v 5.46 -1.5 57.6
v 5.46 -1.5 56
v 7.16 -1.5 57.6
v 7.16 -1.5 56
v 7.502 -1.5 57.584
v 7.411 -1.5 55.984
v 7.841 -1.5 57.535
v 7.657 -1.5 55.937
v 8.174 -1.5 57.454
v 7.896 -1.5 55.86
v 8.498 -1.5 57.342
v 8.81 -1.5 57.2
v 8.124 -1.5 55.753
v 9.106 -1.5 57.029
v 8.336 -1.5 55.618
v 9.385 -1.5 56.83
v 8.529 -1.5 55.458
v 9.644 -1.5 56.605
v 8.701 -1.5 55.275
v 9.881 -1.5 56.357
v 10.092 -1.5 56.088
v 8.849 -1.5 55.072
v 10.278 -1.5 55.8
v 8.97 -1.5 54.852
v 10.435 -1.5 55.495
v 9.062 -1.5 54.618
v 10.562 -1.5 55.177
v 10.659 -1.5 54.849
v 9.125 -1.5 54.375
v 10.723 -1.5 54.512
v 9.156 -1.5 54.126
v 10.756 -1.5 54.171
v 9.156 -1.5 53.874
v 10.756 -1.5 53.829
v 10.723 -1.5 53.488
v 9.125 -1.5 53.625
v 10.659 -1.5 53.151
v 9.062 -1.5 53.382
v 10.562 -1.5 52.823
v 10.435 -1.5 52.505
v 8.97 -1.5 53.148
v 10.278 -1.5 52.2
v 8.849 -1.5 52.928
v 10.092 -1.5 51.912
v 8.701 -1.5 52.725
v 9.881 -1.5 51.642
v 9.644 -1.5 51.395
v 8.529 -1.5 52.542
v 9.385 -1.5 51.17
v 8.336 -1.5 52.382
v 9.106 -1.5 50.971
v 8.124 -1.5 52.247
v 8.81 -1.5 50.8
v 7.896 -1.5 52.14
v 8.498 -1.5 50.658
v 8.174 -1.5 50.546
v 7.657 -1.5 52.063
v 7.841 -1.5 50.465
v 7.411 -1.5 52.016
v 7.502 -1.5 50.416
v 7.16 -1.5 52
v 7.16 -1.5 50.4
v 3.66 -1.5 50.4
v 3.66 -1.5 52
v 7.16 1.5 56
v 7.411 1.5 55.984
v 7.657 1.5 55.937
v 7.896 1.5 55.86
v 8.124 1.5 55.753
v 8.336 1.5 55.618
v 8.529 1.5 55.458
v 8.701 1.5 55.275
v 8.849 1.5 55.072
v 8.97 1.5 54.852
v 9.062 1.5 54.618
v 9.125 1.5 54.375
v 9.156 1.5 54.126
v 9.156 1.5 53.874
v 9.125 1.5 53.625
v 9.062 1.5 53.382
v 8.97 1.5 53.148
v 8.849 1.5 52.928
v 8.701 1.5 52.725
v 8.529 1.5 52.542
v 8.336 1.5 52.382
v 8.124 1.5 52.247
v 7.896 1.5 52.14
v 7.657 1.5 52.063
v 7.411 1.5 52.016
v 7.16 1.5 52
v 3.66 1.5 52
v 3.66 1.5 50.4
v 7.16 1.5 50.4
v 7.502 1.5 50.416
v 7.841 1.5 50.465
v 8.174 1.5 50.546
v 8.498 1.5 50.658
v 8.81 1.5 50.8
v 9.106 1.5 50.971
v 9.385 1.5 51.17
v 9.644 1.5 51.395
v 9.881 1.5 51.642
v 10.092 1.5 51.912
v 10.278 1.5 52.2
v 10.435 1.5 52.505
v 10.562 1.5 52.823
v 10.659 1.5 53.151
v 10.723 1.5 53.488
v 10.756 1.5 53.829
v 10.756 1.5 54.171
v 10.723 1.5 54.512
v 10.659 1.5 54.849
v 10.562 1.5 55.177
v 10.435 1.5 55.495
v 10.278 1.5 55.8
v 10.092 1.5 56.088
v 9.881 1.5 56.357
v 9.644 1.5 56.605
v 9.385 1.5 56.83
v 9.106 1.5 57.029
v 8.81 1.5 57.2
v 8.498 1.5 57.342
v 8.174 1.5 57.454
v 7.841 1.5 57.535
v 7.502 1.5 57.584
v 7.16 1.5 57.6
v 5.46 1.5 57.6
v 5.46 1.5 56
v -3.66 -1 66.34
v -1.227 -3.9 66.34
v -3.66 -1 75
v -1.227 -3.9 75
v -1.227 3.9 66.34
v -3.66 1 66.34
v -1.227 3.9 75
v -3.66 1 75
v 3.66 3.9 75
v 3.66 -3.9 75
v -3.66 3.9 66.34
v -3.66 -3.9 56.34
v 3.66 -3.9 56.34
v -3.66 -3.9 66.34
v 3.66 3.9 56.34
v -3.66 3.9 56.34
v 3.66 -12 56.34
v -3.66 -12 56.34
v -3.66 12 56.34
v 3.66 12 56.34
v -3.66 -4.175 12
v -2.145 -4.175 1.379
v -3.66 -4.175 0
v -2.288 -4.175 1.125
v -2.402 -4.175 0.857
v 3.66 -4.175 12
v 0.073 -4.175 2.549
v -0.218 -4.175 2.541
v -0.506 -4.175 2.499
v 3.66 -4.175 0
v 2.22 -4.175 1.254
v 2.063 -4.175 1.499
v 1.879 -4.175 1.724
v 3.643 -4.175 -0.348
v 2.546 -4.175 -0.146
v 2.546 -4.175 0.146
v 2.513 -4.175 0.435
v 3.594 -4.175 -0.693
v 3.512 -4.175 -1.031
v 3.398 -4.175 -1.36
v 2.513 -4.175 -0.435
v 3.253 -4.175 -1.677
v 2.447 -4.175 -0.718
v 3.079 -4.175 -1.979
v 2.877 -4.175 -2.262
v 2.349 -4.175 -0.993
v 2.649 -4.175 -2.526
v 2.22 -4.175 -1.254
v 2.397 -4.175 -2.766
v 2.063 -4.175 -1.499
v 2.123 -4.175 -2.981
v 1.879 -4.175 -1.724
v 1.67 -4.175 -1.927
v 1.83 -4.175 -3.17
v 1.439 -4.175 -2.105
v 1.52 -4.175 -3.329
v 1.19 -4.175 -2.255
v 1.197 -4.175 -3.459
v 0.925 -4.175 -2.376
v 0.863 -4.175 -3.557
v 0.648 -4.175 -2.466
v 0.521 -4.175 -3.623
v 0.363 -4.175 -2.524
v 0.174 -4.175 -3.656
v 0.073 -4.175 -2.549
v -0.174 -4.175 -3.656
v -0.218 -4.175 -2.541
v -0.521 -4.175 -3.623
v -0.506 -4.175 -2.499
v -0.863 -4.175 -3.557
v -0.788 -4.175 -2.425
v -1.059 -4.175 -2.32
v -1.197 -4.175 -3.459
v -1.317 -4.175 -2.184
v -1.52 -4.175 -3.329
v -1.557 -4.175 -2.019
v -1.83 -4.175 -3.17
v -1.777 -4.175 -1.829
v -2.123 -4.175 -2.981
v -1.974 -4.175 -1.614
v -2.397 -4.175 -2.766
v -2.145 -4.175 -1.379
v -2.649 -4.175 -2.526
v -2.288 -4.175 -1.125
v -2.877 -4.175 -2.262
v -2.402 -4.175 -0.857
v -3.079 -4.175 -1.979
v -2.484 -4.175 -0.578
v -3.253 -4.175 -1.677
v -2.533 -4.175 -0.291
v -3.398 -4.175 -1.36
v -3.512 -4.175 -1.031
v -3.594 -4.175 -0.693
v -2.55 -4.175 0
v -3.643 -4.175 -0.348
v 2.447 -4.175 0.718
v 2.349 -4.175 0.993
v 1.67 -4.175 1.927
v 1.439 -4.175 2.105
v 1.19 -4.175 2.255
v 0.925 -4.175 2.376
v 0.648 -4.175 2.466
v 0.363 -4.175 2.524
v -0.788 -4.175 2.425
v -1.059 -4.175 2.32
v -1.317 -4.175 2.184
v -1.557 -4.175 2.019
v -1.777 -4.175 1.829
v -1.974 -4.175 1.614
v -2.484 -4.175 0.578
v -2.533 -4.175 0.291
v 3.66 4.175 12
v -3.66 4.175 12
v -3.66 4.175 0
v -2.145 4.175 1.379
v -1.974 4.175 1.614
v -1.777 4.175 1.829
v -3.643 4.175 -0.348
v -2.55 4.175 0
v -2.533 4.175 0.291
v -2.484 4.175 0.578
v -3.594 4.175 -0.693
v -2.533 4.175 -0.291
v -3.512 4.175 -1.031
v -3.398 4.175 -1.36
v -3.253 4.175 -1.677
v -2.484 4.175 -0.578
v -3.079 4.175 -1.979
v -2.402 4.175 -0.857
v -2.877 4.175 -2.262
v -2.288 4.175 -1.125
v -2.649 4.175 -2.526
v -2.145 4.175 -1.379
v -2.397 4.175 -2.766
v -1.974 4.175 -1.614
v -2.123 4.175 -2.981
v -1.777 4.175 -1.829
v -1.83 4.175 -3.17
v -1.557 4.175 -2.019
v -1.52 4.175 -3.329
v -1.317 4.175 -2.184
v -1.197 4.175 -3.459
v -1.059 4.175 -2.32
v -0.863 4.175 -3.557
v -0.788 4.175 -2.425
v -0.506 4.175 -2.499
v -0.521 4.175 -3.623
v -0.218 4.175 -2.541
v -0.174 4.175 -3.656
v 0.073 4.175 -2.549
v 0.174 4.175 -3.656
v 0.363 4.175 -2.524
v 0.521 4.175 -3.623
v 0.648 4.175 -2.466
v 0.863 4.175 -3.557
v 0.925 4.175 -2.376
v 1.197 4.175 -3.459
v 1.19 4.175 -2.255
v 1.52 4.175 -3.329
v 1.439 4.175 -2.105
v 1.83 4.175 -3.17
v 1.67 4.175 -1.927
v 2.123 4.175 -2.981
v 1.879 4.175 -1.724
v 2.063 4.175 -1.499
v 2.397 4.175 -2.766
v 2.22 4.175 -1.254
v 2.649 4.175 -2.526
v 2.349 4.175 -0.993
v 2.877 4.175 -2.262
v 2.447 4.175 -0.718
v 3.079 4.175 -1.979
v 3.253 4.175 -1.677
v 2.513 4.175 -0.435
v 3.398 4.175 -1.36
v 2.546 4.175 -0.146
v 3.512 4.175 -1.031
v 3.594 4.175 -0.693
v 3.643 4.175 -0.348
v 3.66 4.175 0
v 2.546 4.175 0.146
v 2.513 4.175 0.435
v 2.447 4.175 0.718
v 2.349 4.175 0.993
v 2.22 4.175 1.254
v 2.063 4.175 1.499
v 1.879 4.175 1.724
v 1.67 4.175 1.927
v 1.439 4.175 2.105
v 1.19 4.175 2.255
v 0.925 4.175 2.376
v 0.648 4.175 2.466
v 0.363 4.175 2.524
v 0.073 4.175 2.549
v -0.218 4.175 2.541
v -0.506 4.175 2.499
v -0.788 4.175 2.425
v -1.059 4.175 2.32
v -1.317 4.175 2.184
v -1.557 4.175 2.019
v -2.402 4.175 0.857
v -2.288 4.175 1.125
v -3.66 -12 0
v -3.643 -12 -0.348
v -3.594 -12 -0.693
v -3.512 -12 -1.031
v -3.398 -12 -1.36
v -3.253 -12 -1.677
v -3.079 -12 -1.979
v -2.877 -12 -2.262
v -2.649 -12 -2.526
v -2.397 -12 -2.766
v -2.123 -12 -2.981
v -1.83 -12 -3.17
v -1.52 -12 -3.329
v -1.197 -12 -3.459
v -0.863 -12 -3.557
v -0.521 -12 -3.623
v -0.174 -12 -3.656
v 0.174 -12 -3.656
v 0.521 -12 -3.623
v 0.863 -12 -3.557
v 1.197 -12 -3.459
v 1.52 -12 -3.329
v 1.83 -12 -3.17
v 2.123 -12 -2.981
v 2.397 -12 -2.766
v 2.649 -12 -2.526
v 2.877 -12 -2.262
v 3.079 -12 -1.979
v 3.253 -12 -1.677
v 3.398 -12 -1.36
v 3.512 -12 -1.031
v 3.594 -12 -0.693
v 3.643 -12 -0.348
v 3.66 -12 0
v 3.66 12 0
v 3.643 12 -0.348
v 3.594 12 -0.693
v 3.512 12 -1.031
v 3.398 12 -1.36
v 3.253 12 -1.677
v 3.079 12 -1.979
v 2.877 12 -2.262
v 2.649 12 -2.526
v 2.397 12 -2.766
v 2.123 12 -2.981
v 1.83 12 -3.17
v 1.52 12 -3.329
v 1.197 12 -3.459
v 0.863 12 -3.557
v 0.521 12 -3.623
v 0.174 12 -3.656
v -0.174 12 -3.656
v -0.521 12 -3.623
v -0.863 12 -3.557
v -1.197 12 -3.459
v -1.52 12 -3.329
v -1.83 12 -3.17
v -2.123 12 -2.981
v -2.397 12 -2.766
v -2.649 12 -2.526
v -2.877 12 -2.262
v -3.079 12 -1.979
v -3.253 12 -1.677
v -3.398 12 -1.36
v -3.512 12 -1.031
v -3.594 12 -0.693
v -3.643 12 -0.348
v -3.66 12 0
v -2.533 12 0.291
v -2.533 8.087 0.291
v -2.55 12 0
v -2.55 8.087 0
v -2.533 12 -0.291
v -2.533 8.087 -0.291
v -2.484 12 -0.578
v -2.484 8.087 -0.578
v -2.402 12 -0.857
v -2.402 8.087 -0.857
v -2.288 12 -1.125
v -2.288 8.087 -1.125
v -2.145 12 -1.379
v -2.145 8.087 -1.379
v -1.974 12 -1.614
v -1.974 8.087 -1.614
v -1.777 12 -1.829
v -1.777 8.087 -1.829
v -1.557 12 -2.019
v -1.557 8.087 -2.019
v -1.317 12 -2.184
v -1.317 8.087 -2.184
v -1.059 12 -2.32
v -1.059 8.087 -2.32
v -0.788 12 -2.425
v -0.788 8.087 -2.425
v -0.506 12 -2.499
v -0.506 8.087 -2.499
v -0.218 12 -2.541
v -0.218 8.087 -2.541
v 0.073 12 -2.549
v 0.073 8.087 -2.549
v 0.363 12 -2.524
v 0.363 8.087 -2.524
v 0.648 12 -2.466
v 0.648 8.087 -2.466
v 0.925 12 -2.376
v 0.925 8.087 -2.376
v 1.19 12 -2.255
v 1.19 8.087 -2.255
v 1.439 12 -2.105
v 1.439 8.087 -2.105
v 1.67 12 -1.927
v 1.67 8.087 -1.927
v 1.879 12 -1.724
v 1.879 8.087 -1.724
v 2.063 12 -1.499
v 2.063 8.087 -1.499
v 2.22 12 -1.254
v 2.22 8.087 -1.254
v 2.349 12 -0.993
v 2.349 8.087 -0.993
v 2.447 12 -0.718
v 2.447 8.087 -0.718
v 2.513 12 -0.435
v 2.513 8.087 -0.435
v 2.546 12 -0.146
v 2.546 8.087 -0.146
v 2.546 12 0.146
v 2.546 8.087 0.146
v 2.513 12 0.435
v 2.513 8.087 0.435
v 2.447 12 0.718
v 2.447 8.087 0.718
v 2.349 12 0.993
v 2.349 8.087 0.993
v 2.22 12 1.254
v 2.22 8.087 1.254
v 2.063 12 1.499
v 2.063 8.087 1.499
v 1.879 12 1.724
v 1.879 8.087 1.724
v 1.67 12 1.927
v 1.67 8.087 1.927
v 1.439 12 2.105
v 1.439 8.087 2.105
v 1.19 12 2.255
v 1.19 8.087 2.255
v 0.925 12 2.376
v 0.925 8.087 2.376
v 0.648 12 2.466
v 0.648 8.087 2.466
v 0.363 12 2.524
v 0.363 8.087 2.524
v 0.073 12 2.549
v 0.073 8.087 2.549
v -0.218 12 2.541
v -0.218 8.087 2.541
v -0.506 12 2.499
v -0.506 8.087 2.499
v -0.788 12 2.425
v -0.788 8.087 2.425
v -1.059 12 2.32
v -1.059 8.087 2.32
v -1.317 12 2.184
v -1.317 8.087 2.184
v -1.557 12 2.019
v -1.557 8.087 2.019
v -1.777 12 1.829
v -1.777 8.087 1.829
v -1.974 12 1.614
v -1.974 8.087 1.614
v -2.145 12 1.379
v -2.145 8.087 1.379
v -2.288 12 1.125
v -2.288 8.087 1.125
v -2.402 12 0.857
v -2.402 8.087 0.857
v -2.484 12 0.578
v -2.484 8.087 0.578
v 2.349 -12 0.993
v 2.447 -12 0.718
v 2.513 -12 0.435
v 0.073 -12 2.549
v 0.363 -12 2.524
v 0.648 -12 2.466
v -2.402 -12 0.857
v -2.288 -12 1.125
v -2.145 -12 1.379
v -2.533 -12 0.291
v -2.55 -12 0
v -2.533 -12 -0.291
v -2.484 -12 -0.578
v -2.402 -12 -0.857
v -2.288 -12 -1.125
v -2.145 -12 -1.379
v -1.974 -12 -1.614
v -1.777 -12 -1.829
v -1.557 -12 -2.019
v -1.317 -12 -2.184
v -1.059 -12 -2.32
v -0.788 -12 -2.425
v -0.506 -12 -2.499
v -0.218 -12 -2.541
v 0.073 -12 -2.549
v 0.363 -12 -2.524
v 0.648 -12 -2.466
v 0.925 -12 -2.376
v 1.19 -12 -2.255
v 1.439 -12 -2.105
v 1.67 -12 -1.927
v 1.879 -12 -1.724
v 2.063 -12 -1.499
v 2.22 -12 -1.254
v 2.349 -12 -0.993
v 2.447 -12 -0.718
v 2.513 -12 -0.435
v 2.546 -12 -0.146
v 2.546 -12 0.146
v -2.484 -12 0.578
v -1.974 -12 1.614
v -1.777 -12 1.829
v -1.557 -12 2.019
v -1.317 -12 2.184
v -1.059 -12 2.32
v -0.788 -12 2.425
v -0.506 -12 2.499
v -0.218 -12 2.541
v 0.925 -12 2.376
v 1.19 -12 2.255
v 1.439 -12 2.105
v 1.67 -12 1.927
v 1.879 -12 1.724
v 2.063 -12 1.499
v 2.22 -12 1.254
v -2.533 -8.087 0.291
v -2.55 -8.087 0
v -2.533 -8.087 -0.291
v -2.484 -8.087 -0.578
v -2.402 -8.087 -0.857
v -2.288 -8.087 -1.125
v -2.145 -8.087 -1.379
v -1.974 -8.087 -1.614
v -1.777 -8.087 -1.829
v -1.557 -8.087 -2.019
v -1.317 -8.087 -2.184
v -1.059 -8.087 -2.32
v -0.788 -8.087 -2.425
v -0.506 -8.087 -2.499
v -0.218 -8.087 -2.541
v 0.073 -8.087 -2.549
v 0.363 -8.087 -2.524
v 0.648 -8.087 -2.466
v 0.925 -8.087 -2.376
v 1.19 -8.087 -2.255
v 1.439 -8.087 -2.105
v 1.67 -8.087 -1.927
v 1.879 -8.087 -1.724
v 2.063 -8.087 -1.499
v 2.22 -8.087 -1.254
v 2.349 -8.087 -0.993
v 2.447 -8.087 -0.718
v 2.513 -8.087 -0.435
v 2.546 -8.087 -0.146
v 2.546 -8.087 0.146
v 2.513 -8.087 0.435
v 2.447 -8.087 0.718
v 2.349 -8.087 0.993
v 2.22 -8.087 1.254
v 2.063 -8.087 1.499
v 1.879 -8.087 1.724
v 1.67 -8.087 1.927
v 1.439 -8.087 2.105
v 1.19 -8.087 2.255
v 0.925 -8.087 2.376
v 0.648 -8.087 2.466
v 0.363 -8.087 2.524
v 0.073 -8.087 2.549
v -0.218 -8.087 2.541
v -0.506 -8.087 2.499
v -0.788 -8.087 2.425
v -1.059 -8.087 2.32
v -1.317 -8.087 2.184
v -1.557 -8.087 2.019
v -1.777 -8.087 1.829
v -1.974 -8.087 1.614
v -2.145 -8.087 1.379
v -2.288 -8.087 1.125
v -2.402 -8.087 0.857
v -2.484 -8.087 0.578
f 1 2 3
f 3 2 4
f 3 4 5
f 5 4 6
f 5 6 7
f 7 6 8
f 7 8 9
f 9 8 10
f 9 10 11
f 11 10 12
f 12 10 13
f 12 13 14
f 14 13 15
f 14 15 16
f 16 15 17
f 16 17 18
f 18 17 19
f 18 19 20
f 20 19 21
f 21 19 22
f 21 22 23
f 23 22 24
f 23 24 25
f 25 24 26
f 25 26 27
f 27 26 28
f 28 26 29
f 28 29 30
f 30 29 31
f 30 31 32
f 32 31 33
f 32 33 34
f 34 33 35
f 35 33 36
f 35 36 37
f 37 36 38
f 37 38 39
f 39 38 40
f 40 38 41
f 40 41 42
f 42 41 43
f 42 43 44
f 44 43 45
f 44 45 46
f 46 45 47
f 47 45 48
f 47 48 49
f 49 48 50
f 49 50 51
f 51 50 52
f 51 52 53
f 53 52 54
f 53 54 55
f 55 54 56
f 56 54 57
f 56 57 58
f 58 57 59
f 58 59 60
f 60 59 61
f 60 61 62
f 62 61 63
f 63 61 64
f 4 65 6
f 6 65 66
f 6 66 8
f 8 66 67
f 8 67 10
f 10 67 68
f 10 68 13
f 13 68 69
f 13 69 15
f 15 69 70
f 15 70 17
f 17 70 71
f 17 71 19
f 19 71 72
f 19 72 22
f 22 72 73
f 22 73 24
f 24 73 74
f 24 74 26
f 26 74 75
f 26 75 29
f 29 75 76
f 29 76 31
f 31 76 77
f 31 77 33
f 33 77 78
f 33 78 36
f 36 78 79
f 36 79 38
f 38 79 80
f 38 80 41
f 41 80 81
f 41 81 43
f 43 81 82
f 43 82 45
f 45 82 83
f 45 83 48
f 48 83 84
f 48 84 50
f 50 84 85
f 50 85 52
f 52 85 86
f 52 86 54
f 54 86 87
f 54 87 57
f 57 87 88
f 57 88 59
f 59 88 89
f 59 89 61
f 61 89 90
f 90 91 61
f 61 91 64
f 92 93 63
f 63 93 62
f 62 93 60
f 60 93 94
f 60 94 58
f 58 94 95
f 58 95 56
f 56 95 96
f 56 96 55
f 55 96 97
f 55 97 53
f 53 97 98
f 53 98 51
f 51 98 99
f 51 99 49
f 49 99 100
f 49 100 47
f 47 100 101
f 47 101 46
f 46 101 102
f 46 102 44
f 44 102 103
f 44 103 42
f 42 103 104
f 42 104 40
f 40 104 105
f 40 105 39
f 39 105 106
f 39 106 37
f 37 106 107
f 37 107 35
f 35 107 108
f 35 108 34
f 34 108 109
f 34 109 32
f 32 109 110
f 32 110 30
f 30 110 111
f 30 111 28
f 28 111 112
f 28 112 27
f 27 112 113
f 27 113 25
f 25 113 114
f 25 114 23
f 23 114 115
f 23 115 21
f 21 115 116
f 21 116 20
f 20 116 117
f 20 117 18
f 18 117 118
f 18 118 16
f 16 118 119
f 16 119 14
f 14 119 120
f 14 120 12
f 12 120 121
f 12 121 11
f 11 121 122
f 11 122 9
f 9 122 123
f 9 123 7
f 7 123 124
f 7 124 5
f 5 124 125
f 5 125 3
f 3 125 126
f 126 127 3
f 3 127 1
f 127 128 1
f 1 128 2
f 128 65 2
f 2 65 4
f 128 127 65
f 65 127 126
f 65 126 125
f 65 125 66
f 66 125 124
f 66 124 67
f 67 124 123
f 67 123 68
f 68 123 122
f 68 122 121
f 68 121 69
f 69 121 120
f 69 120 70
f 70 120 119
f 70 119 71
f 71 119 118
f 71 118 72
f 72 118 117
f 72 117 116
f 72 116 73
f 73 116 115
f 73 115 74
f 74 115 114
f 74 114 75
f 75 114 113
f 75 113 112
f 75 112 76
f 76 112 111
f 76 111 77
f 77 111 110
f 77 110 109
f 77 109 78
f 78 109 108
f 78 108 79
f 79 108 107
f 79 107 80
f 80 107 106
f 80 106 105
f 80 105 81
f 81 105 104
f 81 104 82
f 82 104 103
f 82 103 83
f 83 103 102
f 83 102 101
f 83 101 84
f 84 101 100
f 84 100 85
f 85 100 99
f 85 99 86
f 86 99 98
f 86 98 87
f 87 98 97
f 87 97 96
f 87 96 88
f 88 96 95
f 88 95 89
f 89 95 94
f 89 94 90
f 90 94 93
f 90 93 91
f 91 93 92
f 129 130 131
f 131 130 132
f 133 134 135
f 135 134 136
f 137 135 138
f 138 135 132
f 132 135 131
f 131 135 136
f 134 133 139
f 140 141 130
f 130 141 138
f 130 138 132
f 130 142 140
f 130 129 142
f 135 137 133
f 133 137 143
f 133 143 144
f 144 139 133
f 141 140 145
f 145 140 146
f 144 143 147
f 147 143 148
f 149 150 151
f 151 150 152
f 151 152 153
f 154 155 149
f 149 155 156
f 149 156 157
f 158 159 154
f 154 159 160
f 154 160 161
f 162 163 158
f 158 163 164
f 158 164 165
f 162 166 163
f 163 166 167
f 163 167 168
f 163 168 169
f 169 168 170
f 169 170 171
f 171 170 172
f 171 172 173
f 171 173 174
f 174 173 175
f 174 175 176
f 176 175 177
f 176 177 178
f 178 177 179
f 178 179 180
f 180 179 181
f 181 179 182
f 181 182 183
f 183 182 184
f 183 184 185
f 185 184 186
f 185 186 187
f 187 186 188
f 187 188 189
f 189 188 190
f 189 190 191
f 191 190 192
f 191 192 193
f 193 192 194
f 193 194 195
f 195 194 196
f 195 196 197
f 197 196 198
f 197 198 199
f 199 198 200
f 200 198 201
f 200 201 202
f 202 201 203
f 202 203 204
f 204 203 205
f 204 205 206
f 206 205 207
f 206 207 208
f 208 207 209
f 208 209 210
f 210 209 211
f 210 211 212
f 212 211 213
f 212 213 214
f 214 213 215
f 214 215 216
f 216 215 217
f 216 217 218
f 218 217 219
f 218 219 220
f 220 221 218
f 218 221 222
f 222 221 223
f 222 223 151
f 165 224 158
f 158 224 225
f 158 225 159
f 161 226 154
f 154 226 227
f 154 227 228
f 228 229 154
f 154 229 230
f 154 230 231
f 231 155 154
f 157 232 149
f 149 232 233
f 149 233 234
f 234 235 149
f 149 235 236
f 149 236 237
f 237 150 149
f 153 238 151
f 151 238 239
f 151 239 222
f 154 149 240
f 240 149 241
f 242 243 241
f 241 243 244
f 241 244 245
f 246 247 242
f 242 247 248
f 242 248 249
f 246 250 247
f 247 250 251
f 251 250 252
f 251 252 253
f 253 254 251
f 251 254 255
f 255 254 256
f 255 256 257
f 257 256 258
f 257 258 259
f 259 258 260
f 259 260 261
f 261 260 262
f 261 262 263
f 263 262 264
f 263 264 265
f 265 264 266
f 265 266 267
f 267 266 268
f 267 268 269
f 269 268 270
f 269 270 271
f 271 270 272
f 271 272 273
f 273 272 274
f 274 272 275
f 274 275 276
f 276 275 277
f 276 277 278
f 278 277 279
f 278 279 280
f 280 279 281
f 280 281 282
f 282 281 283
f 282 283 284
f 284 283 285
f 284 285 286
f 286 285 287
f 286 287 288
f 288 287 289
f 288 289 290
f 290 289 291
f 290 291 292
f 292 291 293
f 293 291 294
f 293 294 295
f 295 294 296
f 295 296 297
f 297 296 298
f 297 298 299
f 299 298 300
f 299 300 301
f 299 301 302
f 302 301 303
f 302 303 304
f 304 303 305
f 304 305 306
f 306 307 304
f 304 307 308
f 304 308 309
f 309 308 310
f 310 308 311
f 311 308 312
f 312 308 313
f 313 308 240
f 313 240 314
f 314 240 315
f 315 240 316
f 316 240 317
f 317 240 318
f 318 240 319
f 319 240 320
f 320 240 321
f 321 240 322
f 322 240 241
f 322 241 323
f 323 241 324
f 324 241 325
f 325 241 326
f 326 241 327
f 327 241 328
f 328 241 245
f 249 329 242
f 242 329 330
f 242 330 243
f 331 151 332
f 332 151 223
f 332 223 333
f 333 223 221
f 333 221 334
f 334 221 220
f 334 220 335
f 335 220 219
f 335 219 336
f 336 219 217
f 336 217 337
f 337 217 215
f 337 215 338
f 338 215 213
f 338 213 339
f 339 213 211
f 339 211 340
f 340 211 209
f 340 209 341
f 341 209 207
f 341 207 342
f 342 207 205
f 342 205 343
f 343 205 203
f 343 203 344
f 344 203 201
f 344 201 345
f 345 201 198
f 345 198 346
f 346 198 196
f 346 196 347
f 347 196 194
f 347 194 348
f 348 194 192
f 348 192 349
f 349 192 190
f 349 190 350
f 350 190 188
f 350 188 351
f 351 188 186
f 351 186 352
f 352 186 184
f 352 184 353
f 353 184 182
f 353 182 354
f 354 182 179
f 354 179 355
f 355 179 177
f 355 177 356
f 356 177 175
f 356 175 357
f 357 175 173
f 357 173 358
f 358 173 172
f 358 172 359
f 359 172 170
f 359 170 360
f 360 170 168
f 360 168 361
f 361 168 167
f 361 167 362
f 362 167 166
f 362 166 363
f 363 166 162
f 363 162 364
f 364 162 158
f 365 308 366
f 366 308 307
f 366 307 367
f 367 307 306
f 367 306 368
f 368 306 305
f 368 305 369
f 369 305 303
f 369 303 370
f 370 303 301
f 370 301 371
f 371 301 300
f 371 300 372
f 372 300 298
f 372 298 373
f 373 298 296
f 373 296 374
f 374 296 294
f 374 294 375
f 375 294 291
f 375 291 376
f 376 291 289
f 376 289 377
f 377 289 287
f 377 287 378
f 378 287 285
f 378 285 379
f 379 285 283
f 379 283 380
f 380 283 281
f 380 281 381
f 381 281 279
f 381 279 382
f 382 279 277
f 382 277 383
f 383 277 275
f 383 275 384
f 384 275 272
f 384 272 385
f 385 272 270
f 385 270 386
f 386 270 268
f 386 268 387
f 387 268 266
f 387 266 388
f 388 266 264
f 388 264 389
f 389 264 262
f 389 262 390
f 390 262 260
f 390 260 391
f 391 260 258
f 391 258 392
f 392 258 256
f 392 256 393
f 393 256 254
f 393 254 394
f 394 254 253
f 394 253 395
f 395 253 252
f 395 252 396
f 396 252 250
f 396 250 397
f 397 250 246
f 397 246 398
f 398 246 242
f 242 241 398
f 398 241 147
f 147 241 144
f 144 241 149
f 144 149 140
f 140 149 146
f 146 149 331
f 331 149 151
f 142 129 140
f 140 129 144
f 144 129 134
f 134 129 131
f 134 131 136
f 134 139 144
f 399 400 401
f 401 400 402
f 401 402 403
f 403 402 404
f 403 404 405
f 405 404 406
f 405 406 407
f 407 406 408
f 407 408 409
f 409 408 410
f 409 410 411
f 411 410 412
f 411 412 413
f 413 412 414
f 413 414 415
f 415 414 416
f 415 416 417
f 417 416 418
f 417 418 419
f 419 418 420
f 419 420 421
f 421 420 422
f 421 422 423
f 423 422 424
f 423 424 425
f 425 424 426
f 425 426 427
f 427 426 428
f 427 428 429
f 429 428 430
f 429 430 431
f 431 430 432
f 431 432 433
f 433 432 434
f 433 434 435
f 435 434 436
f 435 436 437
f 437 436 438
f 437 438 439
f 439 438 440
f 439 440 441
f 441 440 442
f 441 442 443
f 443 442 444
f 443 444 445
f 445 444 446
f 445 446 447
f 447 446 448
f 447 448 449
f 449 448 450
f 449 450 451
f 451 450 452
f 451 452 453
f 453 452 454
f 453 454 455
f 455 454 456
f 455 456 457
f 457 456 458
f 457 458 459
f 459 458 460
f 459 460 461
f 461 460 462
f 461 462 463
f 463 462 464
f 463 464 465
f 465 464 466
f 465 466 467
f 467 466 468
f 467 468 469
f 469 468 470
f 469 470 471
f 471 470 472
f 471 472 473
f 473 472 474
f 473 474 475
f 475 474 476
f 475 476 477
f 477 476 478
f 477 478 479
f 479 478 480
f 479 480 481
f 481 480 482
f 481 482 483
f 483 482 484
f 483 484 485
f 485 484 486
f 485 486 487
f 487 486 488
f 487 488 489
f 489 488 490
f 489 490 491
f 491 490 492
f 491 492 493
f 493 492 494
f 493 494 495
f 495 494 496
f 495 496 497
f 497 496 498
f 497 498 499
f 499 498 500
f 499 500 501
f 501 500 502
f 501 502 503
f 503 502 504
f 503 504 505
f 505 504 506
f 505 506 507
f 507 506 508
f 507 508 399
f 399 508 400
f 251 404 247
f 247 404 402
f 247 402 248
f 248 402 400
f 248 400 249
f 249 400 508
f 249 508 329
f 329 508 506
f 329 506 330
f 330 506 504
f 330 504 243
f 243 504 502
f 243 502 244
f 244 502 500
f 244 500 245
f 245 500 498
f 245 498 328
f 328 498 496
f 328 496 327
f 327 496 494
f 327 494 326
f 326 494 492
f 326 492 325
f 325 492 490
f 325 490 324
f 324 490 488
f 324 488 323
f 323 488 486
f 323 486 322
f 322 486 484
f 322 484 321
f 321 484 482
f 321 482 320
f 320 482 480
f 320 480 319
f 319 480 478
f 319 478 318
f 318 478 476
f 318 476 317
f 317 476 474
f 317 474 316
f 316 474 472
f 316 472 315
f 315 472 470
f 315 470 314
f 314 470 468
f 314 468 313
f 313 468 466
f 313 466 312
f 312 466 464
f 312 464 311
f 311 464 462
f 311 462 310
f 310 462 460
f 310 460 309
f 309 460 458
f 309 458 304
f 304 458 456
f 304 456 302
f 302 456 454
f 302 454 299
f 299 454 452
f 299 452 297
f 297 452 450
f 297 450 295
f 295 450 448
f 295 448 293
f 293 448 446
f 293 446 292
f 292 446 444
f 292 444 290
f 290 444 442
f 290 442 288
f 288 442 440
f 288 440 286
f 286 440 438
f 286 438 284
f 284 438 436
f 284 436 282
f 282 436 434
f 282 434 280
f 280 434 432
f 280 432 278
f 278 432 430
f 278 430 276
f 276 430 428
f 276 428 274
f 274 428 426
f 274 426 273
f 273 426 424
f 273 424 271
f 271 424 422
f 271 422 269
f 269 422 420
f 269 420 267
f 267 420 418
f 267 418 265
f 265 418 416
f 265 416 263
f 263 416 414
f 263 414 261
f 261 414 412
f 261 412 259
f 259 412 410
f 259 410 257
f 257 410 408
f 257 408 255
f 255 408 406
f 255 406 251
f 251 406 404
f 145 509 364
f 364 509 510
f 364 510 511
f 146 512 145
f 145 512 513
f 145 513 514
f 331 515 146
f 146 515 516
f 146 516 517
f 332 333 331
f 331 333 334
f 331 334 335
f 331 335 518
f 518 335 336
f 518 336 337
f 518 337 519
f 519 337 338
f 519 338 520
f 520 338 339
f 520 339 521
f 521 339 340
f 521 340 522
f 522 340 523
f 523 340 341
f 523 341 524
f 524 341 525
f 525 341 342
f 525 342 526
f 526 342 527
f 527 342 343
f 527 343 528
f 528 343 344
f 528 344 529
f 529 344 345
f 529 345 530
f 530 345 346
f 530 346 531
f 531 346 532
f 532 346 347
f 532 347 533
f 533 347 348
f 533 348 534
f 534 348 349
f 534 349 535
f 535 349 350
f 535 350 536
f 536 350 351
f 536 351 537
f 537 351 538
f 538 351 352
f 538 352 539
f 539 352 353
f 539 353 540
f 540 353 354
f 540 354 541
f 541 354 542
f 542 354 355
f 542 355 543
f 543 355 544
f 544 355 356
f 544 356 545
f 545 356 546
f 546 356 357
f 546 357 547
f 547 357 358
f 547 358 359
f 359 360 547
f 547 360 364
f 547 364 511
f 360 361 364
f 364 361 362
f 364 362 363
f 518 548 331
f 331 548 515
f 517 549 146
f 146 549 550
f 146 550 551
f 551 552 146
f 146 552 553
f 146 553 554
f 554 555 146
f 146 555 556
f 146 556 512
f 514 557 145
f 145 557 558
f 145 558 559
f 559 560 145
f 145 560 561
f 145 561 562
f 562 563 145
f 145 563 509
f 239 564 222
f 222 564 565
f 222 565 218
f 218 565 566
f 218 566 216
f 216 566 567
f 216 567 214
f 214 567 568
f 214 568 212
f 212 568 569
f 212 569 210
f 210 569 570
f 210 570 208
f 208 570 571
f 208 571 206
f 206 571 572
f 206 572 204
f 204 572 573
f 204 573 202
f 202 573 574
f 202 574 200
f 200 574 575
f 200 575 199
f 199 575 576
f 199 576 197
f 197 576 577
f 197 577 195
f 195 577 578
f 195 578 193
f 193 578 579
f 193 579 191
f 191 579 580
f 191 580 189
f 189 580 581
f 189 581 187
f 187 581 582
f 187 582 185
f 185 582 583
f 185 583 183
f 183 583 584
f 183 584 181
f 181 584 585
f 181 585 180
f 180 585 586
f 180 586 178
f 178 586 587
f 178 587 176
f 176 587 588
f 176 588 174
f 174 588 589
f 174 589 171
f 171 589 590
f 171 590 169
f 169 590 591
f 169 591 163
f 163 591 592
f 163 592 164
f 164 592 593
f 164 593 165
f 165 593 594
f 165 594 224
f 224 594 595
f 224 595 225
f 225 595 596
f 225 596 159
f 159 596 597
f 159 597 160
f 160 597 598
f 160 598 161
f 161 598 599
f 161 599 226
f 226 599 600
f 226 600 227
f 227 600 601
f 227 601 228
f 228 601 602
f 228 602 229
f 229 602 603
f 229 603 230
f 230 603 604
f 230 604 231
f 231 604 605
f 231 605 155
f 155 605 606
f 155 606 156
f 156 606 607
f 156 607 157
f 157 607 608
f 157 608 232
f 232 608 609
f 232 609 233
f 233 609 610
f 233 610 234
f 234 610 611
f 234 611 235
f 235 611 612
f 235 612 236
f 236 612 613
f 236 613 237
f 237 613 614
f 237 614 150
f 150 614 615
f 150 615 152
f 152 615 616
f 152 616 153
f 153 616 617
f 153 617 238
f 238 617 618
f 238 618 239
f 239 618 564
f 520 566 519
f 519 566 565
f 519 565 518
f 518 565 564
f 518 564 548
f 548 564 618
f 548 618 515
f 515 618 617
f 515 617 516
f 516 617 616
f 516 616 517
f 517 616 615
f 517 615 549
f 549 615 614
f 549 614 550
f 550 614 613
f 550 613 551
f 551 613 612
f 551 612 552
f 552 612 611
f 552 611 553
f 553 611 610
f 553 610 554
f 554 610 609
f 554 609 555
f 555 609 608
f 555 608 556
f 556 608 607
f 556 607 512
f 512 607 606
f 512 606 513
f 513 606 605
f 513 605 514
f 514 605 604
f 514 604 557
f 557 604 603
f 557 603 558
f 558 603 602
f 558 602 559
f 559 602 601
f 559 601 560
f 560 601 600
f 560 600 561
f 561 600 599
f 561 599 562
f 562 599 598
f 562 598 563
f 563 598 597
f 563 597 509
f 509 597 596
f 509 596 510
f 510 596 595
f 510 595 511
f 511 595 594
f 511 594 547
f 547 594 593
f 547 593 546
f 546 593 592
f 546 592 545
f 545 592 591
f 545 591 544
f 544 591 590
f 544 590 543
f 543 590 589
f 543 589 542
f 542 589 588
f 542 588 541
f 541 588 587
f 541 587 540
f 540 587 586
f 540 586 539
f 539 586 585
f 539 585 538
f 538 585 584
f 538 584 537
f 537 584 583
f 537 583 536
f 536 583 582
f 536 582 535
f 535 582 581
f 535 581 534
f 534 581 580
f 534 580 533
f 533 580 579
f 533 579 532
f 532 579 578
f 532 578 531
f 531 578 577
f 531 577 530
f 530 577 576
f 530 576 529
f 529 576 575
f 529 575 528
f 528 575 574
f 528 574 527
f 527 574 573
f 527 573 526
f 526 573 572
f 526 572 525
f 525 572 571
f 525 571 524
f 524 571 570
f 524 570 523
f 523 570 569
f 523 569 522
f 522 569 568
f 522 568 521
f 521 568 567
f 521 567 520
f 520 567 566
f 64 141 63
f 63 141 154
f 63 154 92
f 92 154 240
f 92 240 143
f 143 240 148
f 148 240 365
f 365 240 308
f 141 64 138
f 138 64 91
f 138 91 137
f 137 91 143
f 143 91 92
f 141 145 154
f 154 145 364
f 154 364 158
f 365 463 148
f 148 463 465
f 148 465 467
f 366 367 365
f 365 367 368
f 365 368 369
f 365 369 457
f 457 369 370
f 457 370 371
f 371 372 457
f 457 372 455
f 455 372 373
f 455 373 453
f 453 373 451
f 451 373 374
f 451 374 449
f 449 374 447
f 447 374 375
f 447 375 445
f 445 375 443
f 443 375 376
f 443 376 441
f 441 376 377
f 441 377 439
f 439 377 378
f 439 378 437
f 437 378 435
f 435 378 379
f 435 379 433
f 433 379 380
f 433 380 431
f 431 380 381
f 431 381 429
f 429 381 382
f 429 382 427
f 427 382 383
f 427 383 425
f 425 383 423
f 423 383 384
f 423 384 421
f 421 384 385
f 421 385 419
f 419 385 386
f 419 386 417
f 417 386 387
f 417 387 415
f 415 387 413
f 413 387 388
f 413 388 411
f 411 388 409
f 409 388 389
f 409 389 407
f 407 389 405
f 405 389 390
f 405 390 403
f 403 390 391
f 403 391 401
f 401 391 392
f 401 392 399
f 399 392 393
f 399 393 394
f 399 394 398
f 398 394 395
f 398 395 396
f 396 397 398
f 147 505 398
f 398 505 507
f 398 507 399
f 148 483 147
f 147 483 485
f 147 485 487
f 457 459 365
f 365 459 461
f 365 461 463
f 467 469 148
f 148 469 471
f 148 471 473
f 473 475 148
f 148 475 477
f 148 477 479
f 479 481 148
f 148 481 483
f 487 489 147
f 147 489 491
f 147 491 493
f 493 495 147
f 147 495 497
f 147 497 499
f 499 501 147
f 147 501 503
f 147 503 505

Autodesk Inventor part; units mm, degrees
ref_plane "YZ Plane" through (0, 0, 0) normal (1, 0, 0) x (0, 1, 0)
ref_plane "XZ Plane" through (0, 0, 0) normal (0, 1, 0) x (-1, 0, 0)
ref_plane "XY Plane" through (0, 0, 0) normal (0, 0, 1) x (1, 0, 0)
sketch "Szkic1" plane through (0, 0, 0) normal (0, 1, 0) x (-1, 0, 0)
  line L0 (-3.66, 66.34) -> (-3.66, 0)
  line L1 (-3.66, 0) -> (3.66, 0) construction
  line L2 (3.66, 0) -> (3.66, 66.34)
  arc A0 (-3.66, 0) -> (3.66, 0) centre (0, 0) ccw
  circle A1 centre (0, 0) radius 2.55
  line L3 (3.66, 12) -> (-3.66, 12)
  line L4 (3.66, 66.34) -> (-3.66, 66.34)
  line L5 (3.66, 56.34) -> (-3.66, 56.34)
  line L6 (0, 66.34) -> (0, 75) construction
  line L7 (-3.66, 52) -> (-7.16, 52)
  line L8 (-7.16, 52) -> (-7.16, 50.4)
  line L9 (-7.16, 50.4) -> (-3.66, 50.4)
  line L10 (-3.66, 50.4) -> (-3.66, 52)
  arc A2 (-7.16, 57.6) -> (-7.16, 50.4) centre (-7.16, 54) ccw
  arc A3 (-7.16, 56) -> (-7.16, 52) centre (-7.16, 54) ccw
  line L11 (-7.16, 57.6) -> (-5.46, 57.6)
  line L12 (-5.46, 57.6) -> (-5.46, 56)
  line L13 (-5.46, 56) -> (-7.16, 56)
  point P0 (0, -3.66)
  point P1 (0, 12)
  dimension "d0" = 7.32
  dimension "d3" = 5.1
  dimension "d17" = 12
  dimension "d26" = 70
  dimension "d27" = 60
  dimension "d30" = 75
  dimension "d31" = 8.66
  dimension "d35" = 2
  dimension "d36" = 3.6
  dimension "d37" = 3.5
  dimension "d38" = 1.7
  dimension "d39" = 52
extrude "Wyciągnięcie proste1" add sketch "Szkic1" along normal mid plane 24 contours L5 L2 L3 L0 | L2 A0 L0 L3
extrude "Wyciągnięcie proste4" cut sketch "Szkic1" along normal mid plane 8.35 contours L2 A0 L0 L3
extrude "Wyciągnięcie proste6" add sketch "Szkic1" along normal mid plane 7.8 contours L4 L2 L5 L0
sketch "Szkic4" plane through (-3.66, 3.9, 66.34) normal (0, 0, 1) x (1, 0, 0)
  line L0 (7.32, -7.8) -> (0, -7.8) projected
  line L1 (0, -7.8) -> (7.32, -7.8)
  line L2 (7.32, -7.8) -> (7.32, 0)
  line L3 (7.32, 0) -> (0, 0)
  line L4 (0, 0) -> (0, -7.8)
  line L5 (2.4334, -7.8) -> (0, -4.9)
  line L6 (0, 0.275) -> (0, -8.075) projected
  line L7 (0, -2.9) -> (2.4334, 0)
  line L8 (0, -3.9) -> (7.32, -3.9) construction
  point P0 (1.2167, -6.35)
  dimension "d43" = 50
  dimension "d44" = 2
extrude "Wyciągnięcie proste7" add sketch "Szkic4" along normal blind 8.66 contours L0 L5 L4 L7 L3 L2
extrude "Wyciągnięcie proste8" add sketch "Szkic1" along normal mid plane 3 contours L0 L9 L8 L7 | L8 A2 L11 L12 L13 A3
equation "\"d33\" = d31"
properties part number "kredafullv3"
